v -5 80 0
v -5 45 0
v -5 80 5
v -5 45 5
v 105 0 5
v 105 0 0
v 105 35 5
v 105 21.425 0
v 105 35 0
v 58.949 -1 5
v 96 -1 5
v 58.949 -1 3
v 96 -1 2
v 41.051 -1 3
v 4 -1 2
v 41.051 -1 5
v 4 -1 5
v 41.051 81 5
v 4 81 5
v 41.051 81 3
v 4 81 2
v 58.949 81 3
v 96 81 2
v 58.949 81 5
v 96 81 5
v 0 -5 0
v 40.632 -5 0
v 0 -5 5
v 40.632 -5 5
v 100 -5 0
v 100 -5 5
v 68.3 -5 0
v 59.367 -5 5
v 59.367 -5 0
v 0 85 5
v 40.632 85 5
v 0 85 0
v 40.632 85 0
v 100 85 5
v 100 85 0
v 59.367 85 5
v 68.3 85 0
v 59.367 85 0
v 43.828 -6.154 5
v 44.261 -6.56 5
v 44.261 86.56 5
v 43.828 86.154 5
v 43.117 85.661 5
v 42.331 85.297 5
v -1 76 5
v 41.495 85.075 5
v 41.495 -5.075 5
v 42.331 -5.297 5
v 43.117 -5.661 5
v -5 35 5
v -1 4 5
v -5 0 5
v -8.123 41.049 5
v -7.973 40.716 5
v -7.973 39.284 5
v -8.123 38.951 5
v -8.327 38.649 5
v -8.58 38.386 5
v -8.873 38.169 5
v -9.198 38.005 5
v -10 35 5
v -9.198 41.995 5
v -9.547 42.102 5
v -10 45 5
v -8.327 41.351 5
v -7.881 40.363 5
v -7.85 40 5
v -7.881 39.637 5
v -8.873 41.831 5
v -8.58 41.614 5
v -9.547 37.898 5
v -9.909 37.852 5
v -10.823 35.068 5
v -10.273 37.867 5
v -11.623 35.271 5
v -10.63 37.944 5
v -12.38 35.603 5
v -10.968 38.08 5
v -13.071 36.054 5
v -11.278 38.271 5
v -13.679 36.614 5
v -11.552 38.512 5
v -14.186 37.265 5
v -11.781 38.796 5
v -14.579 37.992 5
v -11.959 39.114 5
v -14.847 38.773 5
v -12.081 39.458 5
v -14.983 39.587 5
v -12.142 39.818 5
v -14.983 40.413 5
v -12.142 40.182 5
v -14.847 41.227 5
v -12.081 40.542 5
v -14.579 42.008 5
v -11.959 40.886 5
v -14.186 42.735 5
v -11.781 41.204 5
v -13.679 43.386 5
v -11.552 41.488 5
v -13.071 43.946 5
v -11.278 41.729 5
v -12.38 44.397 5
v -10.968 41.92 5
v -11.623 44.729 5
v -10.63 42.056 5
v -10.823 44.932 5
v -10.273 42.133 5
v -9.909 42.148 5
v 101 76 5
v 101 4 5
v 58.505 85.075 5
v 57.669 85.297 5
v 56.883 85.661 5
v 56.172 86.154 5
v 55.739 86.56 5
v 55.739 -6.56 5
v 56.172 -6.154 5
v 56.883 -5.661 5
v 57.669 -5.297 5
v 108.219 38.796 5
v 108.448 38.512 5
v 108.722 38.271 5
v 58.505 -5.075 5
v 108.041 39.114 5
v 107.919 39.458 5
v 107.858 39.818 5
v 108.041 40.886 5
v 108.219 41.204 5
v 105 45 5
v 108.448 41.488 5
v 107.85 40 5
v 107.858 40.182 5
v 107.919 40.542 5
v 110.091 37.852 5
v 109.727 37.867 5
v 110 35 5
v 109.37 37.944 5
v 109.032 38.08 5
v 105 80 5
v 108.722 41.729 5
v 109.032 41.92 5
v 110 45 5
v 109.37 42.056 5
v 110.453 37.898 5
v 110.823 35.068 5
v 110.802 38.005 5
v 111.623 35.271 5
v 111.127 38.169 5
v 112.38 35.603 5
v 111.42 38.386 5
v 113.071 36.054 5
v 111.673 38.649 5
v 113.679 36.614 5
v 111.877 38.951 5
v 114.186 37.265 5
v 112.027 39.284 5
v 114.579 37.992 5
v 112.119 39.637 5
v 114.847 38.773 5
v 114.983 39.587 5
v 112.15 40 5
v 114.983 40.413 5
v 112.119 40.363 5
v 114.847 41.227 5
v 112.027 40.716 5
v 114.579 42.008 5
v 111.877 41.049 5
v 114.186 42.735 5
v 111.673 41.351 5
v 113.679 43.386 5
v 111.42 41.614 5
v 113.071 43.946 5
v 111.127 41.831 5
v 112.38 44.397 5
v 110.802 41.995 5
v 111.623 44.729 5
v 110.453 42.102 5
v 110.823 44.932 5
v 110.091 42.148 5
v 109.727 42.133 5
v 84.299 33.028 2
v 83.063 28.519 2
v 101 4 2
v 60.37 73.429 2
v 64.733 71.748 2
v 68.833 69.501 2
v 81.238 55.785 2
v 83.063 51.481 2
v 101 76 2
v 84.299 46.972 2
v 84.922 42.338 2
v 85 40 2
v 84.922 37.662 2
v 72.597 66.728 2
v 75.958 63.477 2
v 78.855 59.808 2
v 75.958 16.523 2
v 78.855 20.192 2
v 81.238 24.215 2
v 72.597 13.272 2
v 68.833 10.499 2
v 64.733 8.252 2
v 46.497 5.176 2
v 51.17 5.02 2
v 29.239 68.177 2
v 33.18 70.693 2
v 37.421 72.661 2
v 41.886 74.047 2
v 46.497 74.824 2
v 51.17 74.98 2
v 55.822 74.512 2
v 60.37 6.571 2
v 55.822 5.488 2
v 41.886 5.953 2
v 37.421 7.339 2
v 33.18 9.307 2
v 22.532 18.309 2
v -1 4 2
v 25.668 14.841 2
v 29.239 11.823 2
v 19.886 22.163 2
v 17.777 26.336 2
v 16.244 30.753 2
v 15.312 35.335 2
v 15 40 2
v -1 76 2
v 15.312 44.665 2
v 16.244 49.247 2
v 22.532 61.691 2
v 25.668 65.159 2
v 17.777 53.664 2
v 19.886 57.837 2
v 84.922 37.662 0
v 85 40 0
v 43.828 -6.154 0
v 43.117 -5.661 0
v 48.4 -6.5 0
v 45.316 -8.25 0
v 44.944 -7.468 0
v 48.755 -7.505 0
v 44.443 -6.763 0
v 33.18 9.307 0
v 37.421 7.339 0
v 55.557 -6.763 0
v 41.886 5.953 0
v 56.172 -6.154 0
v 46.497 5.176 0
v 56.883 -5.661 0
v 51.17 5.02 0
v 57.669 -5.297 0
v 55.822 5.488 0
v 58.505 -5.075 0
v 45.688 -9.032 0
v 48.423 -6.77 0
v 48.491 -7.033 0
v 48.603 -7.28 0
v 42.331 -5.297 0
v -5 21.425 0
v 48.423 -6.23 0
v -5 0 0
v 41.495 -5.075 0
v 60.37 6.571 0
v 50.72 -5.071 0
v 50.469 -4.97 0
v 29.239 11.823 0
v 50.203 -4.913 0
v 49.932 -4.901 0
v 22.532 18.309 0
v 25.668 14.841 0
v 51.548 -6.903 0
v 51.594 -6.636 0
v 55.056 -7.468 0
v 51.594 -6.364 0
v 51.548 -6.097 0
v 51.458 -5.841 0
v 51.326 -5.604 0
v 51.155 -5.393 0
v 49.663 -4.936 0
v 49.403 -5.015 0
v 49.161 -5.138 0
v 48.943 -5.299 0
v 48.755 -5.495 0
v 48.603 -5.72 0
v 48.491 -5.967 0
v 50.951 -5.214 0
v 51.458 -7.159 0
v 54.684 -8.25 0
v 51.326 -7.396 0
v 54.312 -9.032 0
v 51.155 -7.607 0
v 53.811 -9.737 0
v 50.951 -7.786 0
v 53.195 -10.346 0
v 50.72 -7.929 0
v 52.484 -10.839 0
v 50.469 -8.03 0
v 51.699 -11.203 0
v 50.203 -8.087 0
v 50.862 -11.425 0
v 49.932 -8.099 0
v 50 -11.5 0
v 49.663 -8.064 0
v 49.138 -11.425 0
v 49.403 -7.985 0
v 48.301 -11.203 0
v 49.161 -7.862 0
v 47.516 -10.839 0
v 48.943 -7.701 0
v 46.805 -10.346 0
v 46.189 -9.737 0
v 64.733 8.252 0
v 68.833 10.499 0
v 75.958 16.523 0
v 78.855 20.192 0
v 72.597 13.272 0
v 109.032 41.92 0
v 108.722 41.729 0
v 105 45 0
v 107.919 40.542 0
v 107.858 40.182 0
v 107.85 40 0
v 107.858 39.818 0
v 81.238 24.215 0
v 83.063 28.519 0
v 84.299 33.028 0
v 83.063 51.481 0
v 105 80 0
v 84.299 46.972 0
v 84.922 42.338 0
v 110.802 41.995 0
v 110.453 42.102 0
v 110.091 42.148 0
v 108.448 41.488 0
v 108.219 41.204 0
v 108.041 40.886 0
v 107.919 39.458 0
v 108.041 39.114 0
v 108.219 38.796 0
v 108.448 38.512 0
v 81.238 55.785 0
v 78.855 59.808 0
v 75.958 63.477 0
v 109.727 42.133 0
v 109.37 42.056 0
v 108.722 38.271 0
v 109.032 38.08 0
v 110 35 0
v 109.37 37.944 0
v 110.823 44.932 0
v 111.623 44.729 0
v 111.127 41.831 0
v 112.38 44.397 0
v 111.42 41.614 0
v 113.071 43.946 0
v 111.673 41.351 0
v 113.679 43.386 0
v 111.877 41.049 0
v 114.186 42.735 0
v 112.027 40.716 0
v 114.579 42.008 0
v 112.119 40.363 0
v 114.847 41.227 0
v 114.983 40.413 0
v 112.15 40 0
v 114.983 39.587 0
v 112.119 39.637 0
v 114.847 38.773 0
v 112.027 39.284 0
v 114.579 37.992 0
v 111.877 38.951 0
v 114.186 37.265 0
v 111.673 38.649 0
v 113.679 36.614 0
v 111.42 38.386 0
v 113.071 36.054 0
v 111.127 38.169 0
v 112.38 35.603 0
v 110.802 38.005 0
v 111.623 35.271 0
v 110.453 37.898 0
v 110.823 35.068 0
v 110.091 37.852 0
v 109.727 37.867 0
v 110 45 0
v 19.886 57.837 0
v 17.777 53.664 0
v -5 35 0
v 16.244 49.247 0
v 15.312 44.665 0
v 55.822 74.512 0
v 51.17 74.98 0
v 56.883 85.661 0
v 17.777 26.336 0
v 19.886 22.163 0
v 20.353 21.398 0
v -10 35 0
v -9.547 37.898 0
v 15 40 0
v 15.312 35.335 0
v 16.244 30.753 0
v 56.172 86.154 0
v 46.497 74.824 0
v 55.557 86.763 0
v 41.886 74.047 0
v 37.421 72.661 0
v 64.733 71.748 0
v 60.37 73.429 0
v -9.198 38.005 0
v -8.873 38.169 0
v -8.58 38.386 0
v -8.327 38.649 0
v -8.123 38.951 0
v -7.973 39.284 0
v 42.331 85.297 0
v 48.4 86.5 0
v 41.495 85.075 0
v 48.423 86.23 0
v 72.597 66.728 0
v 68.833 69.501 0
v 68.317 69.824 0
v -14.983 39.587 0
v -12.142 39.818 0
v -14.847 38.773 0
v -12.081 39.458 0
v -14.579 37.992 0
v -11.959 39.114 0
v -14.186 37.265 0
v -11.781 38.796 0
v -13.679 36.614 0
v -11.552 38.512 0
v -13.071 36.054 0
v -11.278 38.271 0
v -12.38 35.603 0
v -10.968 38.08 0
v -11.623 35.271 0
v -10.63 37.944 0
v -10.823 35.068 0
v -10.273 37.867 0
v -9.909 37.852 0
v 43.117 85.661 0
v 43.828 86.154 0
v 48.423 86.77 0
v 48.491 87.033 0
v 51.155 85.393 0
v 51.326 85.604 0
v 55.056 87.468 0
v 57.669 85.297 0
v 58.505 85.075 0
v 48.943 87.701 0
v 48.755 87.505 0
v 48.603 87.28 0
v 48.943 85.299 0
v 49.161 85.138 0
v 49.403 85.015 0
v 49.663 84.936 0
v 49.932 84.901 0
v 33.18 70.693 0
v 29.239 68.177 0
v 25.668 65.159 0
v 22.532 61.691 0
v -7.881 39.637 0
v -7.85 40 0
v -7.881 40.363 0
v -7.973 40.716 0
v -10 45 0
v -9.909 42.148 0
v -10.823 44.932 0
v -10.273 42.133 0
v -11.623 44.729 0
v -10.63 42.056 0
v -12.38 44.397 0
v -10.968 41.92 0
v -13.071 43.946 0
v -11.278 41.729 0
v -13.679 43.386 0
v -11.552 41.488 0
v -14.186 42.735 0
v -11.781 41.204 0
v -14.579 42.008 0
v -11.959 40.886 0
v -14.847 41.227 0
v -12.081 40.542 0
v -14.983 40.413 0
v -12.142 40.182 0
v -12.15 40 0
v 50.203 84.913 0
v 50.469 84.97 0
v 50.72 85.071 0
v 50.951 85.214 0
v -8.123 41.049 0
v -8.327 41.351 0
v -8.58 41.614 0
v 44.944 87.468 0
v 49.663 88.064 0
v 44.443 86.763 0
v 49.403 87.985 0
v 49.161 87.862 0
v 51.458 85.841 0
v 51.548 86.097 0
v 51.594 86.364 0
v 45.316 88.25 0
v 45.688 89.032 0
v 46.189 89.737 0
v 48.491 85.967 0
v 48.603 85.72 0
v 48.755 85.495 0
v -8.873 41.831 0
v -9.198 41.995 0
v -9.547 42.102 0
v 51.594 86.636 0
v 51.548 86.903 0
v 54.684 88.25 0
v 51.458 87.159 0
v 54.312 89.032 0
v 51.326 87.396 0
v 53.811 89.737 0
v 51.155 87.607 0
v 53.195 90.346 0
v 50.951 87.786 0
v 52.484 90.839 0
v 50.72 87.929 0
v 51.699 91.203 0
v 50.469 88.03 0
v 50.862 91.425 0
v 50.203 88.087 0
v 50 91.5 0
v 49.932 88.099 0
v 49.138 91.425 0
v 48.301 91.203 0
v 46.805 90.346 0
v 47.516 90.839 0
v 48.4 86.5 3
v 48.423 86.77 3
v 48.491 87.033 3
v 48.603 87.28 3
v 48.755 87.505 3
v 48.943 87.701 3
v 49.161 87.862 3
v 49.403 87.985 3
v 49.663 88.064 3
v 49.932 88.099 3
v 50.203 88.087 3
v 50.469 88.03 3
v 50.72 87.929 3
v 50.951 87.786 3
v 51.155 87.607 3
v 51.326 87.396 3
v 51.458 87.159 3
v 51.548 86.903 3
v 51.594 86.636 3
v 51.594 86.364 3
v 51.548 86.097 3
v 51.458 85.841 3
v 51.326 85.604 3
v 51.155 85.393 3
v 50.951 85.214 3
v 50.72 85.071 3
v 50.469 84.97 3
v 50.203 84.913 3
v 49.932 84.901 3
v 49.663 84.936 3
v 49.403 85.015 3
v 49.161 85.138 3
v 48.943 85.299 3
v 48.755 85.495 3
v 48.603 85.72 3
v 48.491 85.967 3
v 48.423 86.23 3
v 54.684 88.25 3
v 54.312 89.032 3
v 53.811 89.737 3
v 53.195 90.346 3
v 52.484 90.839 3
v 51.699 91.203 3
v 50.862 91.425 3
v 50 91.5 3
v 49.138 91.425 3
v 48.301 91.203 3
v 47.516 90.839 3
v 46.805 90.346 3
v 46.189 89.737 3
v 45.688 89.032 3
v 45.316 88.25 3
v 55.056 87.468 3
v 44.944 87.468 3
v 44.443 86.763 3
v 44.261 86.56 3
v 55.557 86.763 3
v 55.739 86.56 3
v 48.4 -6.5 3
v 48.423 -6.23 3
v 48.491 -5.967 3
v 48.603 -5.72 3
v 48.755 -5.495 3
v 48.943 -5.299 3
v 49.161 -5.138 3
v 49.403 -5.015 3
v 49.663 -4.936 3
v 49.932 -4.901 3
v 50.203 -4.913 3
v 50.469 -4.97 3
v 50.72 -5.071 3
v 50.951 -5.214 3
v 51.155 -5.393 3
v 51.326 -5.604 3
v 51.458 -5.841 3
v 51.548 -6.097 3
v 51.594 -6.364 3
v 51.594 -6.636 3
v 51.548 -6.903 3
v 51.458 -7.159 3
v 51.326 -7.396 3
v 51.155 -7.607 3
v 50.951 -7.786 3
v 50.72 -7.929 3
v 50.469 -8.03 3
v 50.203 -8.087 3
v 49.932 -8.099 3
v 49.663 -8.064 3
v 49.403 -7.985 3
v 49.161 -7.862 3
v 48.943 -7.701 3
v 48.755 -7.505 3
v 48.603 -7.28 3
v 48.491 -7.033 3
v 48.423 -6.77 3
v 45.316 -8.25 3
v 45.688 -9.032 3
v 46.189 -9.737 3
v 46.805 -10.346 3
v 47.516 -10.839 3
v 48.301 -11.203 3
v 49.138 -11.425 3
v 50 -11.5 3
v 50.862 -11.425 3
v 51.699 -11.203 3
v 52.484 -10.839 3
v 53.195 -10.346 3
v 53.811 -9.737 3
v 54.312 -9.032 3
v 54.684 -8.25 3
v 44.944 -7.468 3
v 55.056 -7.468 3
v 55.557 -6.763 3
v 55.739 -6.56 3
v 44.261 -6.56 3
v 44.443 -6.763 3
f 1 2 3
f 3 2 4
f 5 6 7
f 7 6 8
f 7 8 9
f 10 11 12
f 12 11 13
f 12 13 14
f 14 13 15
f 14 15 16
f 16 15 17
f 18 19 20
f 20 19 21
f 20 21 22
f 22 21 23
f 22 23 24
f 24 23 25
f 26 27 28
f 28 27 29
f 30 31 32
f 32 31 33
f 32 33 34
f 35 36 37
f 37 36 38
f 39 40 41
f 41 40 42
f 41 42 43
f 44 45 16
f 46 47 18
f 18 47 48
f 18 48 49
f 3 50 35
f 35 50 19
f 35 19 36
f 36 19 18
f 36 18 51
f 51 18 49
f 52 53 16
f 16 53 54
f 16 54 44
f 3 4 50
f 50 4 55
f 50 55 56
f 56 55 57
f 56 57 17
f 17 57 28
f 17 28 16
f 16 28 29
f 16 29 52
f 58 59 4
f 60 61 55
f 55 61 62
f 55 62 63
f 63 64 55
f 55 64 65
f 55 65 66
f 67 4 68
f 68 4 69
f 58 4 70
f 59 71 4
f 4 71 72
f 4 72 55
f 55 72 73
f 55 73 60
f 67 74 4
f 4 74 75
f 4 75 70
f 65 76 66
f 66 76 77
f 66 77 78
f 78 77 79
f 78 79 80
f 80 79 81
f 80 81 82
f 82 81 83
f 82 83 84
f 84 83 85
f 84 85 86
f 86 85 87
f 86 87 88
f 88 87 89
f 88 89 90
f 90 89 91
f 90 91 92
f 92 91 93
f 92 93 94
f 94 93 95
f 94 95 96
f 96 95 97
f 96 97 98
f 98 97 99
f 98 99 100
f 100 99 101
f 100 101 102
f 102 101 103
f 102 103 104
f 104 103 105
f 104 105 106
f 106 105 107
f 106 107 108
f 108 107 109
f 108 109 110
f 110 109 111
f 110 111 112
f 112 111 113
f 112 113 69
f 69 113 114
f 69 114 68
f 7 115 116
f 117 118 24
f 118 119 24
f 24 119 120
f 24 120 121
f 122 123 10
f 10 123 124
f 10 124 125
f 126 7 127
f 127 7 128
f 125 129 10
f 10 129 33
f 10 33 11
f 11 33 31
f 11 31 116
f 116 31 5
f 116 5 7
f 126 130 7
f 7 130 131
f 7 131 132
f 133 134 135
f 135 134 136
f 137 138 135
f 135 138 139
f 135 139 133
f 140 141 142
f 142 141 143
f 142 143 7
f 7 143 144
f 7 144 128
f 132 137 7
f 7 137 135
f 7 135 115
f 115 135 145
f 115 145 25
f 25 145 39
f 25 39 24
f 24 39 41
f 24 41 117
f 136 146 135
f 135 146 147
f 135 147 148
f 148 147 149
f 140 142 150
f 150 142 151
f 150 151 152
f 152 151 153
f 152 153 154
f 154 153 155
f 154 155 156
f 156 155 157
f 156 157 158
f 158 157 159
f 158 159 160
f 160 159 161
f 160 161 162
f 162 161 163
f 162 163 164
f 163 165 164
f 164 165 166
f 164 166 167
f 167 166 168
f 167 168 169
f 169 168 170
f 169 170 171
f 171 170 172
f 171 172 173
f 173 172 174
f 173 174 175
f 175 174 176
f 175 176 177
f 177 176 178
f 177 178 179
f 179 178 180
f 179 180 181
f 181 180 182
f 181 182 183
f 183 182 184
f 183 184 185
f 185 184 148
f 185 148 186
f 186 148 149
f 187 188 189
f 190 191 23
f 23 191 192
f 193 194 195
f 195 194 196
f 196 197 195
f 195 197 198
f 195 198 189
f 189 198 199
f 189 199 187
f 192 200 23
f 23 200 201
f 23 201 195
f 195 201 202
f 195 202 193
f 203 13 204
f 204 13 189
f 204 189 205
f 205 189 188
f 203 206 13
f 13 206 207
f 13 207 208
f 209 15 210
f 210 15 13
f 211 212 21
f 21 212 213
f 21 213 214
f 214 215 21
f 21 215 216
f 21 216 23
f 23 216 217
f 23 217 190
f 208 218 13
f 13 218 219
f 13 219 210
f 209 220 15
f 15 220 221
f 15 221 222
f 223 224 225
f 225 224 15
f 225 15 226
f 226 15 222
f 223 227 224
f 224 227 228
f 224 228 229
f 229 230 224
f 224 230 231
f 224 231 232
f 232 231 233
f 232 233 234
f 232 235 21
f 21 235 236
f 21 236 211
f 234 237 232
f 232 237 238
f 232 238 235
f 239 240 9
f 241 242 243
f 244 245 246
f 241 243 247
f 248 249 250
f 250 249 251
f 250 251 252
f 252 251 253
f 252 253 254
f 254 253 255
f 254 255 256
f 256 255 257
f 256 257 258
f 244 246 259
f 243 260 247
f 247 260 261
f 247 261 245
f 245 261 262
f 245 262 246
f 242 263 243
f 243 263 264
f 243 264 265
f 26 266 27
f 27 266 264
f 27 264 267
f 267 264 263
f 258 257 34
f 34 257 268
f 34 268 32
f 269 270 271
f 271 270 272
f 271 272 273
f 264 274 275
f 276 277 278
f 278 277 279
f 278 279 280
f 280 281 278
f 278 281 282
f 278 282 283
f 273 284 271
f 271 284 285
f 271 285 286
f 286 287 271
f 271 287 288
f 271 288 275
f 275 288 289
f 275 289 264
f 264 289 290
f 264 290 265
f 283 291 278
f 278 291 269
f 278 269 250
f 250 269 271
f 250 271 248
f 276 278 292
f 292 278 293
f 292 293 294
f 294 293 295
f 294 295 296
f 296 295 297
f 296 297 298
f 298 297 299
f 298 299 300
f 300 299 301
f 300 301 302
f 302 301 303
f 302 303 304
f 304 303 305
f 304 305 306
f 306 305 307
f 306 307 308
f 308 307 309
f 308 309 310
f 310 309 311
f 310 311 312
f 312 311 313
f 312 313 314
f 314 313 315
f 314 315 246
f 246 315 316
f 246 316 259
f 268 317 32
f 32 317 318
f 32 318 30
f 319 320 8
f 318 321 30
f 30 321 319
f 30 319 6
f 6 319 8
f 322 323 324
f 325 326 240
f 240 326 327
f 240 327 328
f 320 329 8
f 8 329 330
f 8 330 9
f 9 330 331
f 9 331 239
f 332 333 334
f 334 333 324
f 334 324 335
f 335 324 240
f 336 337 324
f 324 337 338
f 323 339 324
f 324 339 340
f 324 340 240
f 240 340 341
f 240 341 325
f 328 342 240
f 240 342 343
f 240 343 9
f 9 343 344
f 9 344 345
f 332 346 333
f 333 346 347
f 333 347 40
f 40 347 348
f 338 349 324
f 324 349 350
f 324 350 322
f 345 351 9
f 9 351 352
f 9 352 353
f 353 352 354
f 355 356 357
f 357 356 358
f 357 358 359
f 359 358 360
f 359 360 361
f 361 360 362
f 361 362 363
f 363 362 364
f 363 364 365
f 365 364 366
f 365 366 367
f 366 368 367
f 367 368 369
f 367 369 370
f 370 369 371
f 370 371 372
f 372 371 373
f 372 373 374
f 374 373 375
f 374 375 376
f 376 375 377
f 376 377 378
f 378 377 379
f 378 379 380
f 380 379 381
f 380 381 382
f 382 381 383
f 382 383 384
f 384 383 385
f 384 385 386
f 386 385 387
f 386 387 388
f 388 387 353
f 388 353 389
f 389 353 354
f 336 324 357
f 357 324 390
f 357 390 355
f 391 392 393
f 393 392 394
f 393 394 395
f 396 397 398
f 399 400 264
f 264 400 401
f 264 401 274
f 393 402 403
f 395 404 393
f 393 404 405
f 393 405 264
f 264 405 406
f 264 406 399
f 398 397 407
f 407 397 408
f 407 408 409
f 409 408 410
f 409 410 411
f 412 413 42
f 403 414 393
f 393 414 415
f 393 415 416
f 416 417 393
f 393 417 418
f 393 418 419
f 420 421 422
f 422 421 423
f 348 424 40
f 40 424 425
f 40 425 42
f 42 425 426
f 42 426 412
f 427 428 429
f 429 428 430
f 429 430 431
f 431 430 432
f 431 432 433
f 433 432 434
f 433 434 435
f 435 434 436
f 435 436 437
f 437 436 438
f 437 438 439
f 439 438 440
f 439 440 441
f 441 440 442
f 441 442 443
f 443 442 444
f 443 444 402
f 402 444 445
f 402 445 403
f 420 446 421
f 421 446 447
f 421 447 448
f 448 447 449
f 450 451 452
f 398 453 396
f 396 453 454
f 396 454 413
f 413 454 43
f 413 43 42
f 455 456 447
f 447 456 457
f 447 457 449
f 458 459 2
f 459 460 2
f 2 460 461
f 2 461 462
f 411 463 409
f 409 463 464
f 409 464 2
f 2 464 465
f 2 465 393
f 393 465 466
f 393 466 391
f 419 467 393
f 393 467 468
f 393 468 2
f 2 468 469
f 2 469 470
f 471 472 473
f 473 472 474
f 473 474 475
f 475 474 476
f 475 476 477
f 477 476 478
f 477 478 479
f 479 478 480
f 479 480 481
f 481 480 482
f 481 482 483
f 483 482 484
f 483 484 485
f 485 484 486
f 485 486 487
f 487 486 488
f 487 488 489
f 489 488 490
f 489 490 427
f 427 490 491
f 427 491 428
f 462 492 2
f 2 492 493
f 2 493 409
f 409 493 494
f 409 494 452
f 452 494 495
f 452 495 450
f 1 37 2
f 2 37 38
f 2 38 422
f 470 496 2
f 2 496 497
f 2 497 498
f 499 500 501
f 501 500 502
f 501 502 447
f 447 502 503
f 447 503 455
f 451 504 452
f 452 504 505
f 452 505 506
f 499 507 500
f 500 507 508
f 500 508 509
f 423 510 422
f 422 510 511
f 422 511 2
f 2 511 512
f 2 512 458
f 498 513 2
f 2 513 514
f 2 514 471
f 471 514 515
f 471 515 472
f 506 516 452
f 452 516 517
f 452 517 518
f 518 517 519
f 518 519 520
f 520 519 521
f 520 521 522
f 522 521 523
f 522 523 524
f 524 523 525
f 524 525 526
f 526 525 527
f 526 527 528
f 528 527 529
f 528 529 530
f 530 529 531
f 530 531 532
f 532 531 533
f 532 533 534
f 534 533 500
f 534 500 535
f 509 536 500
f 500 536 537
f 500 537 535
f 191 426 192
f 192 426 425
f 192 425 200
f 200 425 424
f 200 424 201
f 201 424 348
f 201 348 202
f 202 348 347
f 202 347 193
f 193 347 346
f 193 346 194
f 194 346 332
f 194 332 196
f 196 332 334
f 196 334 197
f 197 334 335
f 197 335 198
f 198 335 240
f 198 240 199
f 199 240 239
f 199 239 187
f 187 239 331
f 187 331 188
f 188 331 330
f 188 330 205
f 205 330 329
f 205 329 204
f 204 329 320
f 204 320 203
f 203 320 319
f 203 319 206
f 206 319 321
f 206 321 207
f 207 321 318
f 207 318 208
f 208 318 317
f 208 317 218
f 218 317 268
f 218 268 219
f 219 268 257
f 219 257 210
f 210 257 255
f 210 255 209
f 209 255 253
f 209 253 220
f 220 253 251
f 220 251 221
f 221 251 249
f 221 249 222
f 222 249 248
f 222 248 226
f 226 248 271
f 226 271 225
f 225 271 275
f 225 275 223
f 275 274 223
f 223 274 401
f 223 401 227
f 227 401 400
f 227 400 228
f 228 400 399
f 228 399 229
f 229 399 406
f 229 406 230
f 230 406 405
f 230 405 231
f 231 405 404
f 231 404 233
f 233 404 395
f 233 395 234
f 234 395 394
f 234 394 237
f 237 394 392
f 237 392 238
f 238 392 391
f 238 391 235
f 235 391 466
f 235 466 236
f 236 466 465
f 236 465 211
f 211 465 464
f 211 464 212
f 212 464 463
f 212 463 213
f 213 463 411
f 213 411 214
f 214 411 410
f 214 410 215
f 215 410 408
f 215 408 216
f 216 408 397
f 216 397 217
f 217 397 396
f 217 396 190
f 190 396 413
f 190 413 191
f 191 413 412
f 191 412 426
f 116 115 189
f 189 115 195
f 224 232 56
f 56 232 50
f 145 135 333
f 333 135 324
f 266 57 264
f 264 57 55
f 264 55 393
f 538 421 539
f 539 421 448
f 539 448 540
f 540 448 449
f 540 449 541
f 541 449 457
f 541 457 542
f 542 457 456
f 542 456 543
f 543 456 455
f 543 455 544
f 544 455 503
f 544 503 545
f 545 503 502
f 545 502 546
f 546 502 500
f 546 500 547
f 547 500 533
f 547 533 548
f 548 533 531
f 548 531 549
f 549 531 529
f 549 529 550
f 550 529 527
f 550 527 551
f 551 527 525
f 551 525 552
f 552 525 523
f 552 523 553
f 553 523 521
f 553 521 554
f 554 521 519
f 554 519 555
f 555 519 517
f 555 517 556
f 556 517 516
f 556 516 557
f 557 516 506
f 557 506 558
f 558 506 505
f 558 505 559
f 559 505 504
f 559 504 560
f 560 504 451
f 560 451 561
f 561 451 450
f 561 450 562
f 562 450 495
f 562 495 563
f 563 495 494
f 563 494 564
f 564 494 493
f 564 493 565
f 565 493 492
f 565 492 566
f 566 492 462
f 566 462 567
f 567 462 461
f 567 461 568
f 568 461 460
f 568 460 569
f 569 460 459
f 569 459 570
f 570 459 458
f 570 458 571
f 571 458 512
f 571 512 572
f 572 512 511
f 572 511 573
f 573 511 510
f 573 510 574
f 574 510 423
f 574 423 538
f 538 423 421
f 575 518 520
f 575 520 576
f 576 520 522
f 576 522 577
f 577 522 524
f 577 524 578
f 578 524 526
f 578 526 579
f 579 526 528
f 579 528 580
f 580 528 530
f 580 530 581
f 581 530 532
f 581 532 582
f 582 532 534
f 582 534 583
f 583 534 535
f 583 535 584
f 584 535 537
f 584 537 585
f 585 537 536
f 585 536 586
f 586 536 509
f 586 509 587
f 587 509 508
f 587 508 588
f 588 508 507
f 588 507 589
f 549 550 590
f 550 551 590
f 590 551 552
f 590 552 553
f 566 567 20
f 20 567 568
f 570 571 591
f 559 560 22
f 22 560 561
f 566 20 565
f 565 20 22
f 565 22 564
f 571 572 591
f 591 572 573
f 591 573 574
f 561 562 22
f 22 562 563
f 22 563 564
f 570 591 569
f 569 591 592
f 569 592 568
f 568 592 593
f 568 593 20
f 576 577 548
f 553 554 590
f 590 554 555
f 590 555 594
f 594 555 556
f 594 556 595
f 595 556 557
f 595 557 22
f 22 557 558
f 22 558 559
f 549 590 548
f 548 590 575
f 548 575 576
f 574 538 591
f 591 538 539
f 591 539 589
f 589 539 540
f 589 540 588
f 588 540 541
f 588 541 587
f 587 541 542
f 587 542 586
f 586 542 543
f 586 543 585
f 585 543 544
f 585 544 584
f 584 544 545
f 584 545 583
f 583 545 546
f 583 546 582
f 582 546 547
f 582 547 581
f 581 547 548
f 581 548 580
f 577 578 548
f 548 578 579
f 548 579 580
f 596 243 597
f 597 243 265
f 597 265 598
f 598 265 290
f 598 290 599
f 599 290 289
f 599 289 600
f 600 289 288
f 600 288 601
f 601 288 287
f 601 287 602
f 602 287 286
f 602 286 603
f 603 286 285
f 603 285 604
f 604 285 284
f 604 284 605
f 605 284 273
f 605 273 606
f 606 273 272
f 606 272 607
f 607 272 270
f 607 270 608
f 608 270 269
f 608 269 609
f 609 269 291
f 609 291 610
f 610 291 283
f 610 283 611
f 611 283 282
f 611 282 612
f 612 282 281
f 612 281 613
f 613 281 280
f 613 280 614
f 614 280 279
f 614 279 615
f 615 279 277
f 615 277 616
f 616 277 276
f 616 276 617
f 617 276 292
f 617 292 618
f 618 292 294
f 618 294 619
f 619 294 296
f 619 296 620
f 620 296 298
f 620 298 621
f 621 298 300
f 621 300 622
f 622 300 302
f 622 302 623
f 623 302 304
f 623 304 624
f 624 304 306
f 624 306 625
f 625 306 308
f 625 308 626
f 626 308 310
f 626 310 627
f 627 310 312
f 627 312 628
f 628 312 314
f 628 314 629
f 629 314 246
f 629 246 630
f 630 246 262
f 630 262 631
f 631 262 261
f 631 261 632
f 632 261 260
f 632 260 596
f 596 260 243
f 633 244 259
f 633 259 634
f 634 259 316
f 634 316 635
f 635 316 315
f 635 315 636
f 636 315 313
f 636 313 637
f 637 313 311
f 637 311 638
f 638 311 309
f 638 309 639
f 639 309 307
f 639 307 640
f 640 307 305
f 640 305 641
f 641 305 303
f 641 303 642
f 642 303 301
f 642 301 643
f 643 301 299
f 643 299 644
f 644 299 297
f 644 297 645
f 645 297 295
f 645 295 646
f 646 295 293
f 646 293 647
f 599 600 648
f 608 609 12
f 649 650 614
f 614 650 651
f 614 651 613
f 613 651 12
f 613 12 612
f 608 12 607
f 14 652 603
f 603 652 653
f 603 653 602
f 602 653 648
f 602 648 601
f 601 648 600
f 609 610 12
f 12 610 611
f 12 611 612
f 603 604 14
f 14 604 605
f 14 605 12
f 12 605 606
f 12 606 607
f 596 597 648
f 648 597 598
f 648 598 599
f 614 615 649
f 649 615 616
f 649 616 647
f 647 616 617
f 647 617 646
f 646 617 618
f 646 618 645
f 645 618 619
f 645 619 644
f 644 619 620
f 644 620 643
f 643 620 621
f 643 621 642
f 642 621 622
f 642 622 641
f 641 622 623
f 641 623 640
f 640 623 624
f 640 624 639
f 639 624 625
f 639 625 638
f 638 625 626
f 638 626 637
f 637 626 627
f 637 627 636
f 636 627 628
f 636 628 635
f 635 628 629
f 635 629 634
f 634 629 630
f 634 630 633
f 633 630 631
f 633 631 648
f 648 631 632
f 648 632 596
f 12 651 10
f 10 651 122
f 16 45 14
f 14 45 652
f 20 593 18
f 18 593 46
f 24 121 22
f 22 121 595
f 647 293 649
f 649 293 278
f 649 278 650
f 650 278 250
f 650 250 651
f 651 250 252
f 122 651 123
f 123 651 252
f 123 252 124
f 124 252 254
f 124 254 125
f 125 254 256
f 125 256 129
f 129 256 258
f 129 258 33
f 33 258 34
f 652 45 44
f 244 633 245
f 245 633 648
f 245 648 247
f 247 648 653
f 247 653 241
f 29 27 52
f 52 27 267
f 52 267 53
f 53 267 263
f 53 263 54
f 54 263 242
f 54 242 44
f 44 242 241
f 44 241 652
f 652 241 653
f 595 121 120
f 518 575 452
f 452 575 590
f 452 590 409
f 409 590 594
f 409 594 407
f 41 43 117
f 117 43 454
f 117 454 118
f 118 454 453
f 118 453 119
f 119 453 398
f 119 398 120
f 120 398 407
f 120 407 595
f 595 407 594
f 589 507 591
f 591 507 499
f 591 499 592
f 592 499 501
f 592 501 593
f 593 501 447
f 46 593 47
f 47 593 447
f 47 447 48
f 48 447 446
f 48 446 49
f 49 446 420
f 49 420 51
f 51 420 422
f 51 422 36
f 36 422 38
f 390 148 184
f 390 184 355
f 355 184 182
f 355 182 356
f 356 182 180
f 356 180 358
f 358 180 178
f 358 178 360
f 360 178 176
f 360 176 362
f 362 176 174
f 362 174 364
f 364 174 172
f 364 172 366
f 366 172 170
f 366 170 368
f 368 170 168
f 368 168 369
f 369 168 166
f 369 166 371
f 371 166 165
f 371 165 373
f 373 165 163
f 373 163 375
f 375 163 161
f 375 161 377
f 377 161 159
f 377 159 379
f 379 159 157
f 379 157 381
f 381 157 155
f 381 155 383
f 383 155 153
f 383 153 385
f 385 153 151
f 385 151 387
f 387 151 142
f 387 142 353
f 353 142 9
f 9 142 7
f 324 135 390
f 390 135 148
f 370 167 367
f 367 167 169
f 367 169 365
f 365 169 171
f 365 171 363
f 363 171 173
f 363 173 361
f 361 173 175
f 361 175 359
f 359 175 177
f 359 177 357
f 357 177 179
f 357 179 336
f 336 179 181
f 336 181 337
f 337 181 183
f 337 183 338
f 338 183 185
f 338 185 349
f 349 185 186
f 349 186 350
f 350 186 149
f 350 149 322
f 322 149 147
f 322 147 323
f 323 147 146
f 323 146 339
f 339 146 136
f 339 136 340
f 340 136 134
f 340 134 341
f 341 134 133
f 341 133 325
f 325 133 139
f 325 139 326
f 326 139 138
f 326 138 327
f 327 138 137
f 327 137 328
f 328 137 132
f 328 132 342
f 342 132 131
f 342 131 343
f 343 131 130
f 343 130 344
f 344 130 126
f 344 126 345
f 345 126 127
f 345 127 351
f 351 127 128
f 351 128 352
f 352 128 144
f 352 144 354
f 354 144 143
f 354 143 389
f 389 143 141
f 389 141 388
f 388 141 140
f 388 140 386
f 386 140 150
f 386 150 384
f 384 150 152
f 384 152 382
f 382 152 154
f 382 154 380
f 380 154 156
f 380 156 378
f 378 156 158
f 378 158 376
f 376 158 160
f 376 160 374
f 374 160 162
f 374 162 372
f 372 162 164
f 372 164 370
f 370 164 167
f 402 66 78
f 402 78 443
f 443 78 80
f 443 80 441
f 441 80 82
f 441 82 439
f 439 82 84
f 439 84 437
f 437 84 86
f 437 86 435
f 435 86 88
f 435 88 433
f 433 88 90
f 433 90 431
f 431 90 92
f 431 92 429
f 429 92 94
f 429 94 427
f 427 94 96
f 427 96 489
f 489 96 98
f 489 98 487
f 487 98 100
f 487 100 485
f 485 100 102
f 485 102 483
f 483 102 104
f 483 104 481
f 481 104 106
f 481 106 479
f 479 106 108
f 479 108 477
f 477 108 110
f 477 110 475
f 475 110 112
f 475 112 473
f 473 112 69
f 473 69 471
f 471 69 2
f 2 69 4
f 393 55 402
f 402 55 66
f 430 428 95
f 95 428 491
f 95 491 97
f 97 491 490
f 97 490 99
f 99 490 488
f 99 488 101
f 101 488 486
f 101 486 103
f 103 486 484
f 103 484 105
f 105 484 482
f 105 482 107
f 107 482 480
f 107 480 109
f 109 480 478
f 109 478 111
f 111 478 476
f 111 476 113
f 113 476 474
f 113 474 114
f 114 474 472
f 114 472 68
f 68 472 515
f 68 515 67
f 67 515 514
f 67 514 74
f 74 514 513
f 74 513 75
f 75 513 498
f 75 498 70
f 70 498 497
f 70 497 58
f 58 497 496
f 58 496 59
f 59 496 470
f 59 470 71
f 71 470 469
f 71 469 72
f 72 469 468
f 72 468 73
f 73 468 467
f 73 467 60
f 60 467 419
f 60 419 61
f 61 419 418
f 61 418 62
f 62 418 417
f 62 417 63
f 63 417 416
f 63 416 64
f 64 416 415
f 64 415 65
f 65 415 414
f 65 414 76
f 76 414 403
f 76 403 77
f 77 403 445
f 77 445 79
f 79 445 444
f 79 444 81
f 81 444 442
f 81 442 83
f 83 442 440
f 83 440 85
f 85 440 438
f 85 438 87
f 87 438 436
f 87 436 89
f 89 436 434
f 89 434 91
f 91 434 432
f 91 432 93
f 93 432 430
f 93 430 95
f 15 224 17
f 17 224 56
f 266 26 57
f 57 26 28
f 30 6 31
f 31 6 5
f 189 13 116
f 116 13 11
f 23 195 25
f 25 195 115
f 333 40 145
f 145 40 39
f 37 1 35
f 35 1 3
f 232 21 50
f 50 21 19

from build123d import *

# Parameters (mm, degrees)
SKETCH_1_W          = 102
SKETCH_1_H          = 82
SKETCH_1_R          = 35
EXTRUDE_1_DEPTH     = 2
SKETCH_2_W          = 110
SKETCH_2_H          = 90
SKETCH_2_W_2        = 102
SKETCH_2_H_2        = 82
EXTRUDE_2_DEPTH     = 5
EXTRUDE_3_DEPTH     = 3
CUT_EXTRUDE_1_DEPTH = 140.306317158
FILLET_1_R          = 5
SKETCH_5_R          = 2.15
EXTRUDE_4_DEPTH     = 5
CHAMFER_1_SIZE      = 5
SKETCH_6_R          = 1.6
CUT_EXTRUDE_2_DEPTH = 147.990645961


with BuildPart() as part:
    # 草图1 → 凸台-拉伸1 (new body)
    with BuildSketch(Plane.XY):
        with Locations((50, 40)):
            Rectangle(SKETCH_1_W, SKETCH_1_H)
        with Locations((50, 40)):
            Circle(SKETCH_1_R, mode=Mode.SUBTRACT)
    extrude(amount=EXTRUDE_1_DEPTH)

    # 草图2 → 凸台-拉伸2 (add)
    with BuildSketch(Plane(origin=(0, 0, 0), x_dir=(-1, 0, 0), z_dir=(0, 0, -1))):
        with Locations((-50, 40)):
            Rectangle(SKETCH_2_W, SKETCH_2_H)
        with Locations((-50, 40)):
            Rectangle(SKETCH_2_W_2, SKETCH_2_H_2, mode=Mode.SUBTRACT)
    extrude(amount=-EXTRUDE_2_DEPTH)

    # 草图3 → 凸台-拉伸3 (add)
    with BuildSketch(Plane(origin=(0, 0, 0), x_dir=(-1, 0, 0), z_dir=(0, 0, -1))):
        with BuildLine():
            Line((-55, 86.5), (-55, 85))
            Line((-55, 85), (-50.556776436, 85))
            ThreePointArc((-50.556776436, 85), (-50, 88.1), (-49.443223564, 85))
            Line((-49.443223564, 85), (-45, 85))
            Line((-45, 85), (-45, 86.5))
            ThreePointArc((-45, 86.5), (-50, 91.5), (-55, 86.5))
        make_face()
        with BuildLine():
            Line((-55, -6.5), (-55, -5))
            Line((-55, -5), (-50.556776436, -5))
            ThreePointArc((-50.556776436, -5), (-50, -8.1), (-49.443223564, -5))
            Line((-49.443223564, -5), (-45, -5))
            Line((-45, -5), (-45, -6.5))
            ThreePointArc((-45, -6.5), (-50, -11.5), (-55, -6.5))
        make_face()
    extrude(amount=-EXTRUDE_3_DEPTH)

    # 草图4 → 切除-拉伸1 (cut, through all)
    with BuildSketch(Plane.XY.offset(3)):
        with BuildLine():
            Line((45.669872981, 89), (41.051070828, 81))
            Line((41.051070828, 81), (58.948929172, 81))
            Line((58.948929172, 81), (54.330127019, 89))
            ThreePointArc((54.330127019, 89), (50, 91.5), (45.669872981, 89))
        make_face()
        with BuildLine():
            Line((58.948929172, -1), (54.330127019, -9))
            ThreePointArc((54.330127019, -9), (50, -11.5), (45.669872981, -9))
            Line((45.669872981, -9), (41.051070828, -1))
            Line((41.051070828, -1), (58.948929172, -1))
        make_face()
    extrude(amount=CUT_EXTRUDE_1_DEPTH, mode=Mode.SUBTRACT)

    # 圆角1
    # the kernel refuses this fillet: 5 mm, written as the material it adds along each edge
    with BuildSketch(Plane(origin=(55, -5, 0), x_dir=(-0.09685070087569839, -0.995298920797107, 0), z_dir=(0, 0, 1))) as fillet_1_piece_1_section:
        with BuildLine():
            CenterArc((4.553499459, 4.831218553), FILLET_1_R, 185.557848431, 69.512684885)
            Line((-0.422995145, 4.346965048), (-0.920644606, 4.298539698))
            Line((-0.920644606, 4.298539698), (-0.49764946, -0.04842535))
            Line((-0.49764946, -0.04842535), (0.04842535, -0.49764946))
            ThreePointArc((0.04842535, -0.49764946), (1.541373732, -0.352373409), (3.136535793, -0.483121855))
            Line((3.136535793, -0.483121855), (3.265350672, 0))
        make_face()
    fillet_1_piece_1 = extrude(amount=3, mode=Mode.PRIVATE)
    fillet_1_piece_1 = split(fillet_1_piece_1, bisect_by=Plane(origin=(55.914654271, -6.255518293, 1.5), z_dir=(-0.8660254037844367, 0.5000000000000034, 0)), keep=Keep.TOP, mode=Mode.PRIVATE)
    add(fillet_1_piece_1)
    with BuildSketch(Plane(origin=(55, -5, 0), x_dir=(-0.09685070087569839, -0.995298920797107, 0), z_dir=(0, 0, 1))) as fillet_1_piece_2_section:
        with BuildLine():
            CenterArc((4.553499459, 4.831218553), FILLET_1_R, 185.557848431, 69.512684885)
            Line((-0.422995145, 4.346965048), (-0.920644606, 4.298539698))
            Line((-0.920644606, 4.298539698), (-0.49764946, -0.04842535))
            Line((-0.49764946, -0.04842535), (0.04842535, -0.49764946))
            ThreePointArc((0.04842535, -0.49764946), (1.541373732, -0.352373409), (3.136535793, -0.483121855))
            Line((3.136535793, -0.483121855), (3.265350672, 0))
        make_face()
    fillet_1_piece_2 = extrude(amount=3, mode=Mode.PRIVATE)
    fillet_1_piece_2 = split(fillet_1_piece_2, bisect_by=Plane(origin=(56.857806143, -4.621931332, 1.5), z_dir=(0.8660254037844367, -0.5000000000000034, 0)), keep=Keep.TOP, mode=Mode.PRIVATE)
    add(fillet_1_piece_2)
    with BuildSketch(Plane(origin=(55, -5, 0), x_dir=(-0.09685070087569839, -0.995298920797107, 0), z_dir=(0, 0, 1))) as fillet_1_piece_3_section:
        with BuildLine():
            CenterArc((4.553499459, 4.831218553), FILLET_1_R, 185.557848431, 69.512684885)
            Line((-0.422995145, 4.346965048), (-0.920644606, 4.298539698))
            Line((-0.920644606, 4.298539698), (-0.49764946, -0.04842535))
            Line((-0.49764946, -0.04842535), (0.04842535, -0.49764946))
            ThreePointArc((0.04842535, -0.49764946), (1.541373732, -0.352373409), (3.136535793, -0.483121855))
            Line((3.136535793, -0.483121855), (3.265350672, 0))
        make_face()
    fillet_1_piece_3 = extrude(amount=13.918742494, mode=Mode.PRIVATE)
    fillet_1_piece_3 = split(fillet_1_piece_3, bisect_by=Plane(origin=(57.593647947, -5.046769796, 5), z_dir=(0, 0, -1)), keep=Keep.TOP, mode=Mode.PRIVATE)
    fillet_1_piece_3 = split(fillet_1_piece_3, bisect_by=Plane(origin=(56.857806143, -4.621931332, 4), z_dir=(0.8660254037844367, -0.5000000000000034, 0)), keep=Keep.TOP, mode=Mode.PRIVATE)
    fillet_1_piece_3 = split(fillet_1_piece_3, bisect_by=Plane(origin=(57.593647947, -5.046769796, 3), z_dir=(0, 0, 1)), keep=Keep.TOP, mode=Mode.PRIVATE)
    add(fillet_1_piece_3)
    with BuildSketch(Plane(origin=(45, -5, 0), x_dir=(0.09685070087569624, -0.9952989207971072, 0), z_dir=(0, 0, 1))) as fillet_1_piece_4_section:
        with BuildLine():
            CenterArc((4.553499459, -4.831218553), FILLET_1_R, 104.929466684, 69.512684885)
            Line((-0.422995145, -4.346965048), (-0.920644606, -4.298539698))
            Line((-0.920644606, -4.298539698), (-0.49764946, 0.04842535))
            Line((-0.49764946, 0.04842535), (0.04842535, 0.49764946))
            ThreePointArc((0.04842535, 0.49764946), (1.541373732, 0.352373409), (3.136535793, 0.483121855))
            Line((3.136535793, 0.483121855), (3.265350672, 0))
        make_face()
    fillet_1_piece_4 = extrude(amount=3, mode=Mode.PRIVATE)
    fillet_1_piece_4 = split(fillet_1_piece_4, bisect_by=Plane(origin=(44.085345729, -6.255518293, 1.5), z_dir=(0.8660254037844364, 0.5000000000000041, 0)), keep=Keep.TOP, mode=Mode.PRIVATE)
    add(fillet_1_piece_4)
    with BuildSketch(Plane(origin=(45, -5, 0), x_dir=(0.09685070087569624, -0.9952989207971072, 0), z_dir=(0, 0, 1))) as fillet_1_piece_5_section:
        with BuildLine():
            CenterArc((4.553499459, -4.831218553), FILLET_1_R, 104.929466684, 69.512684885)
            Line((-0.422995145, -4.346965048), (-0.920644606, -4.298539698))
            Line((-0.920644606, -4.298539698), (-0.49764946, 0.04842535))
            Line((-0.49764946, 0.04842535), (0.04842535, 0.49764946))
            ThreePointArc((0.04842535, 0.49764946), (1.541373732, 0.352373409), (3.136535793, 0.483121855))
            Line((3.136535793, 0.483121855), (3.265350672, 0))
        make_face()
    fillet_1_piece_5 = extrude(amount=3, mode=Mode.PRIVATE)
    fillet_1_piece_5 = split(fillet_1_piece_5, bisect_by=Plane(origin=(43.142193857, -4.621931332, 1.5), z_dir=(-0.8660254037844364, -0.5000000000000041, 0)), keep=Keep.TOP, mode=Mode.PRIVATE)
    add(fillet_1_piece_5)
    with BuildSketch(Plane(origin=(45, -5, 0), x_dir=(0.09685070087569624, -0.9952989207971072, 0), z_dir=(0, 0, 1))) as fillet_1_piece_6_section:
        with BuildLine():
            CenterArc((4.553499459, -4.831218553), FILLET_1_R, 104.929466684, 69.512684885)
            Line((-0.422995145, -4.346965048), (-0.920644606, -4.298539698))
            Line((-0.920644606, -4.298539698), (-0.49764946, 0.04842535))
            Line((-0.49764946, 0.04842535), (0.04842535, 0.49764946))
            ThreePointArc((0.04842535, 0.49764946), (1.541373732, 0.352373409), (3.136535793, 0.483121855))
            Line((3.136535793, 0.483121855), (3.265350672, 0))
        make_face()
    fillet_1_piece_6 = extrude(amount=13.918742494, mode=Mode.PRIVATE)
    fillet_1_piece_6 = split(fillet_1_piece_6, bisect_by=Plane(origin=(42.406352053, -5.046769796, 5), z_dir=(0, 0, -1)), keep=Keep.TOP, mode=Mode.PRIVATE)
    fillet_1_piece_6 = split(fillet_1_piece_6, bisect_by=Plane(origin=(42.406352053, -5.046769796, 3), z_dir=(0, 0, 1)), keep=Keep.TOP, mode=Mode.PRIVATE)
    fillet_1_piece_6 = split(fillet_1_piece_6, bisect_by=Plane(origin=(43.142193857, -4.621931332, 4), z_dir=(-0.8660254037844364, -0.5000000000000041, 0)), keep=Keep.TOP, mode=Mode.PRIVATE)
    add(fillet_1_piece_6)
    with BuildSketch(Plane(origin=(55, 85, 0), x_dir=(-0.0968507008756942, 0.9952989207971075, 0), z_dir=(0, 0, 1))) as fillet_1_piece_7_section:
        with BuildLine():
            CenterArc((4.553499459, -4.831218553), FILLET_1_R, 104.929466684, 69.512684885)
            Line((-0.422995145, -4.346965048), (-0.920644606, -4.298539698))
            Line((-0.920644606, -4.298539698), (-0.49764946, 0.04842535))
            Line((-0.49764946, 0.04842535), (0.04842535, 0.49764946))
            ThreePointArc((0.04842535, 0.49764946), (1.541373732, 0.352373409), (3.136535793, 0.483121855))
            Line((3.136535793, 0.483121855), (3.265350672, 0))
        make_face()
    fillet_1_piece_7 = extrude(amount=3, mode=Mode.PRIVATE)
    fillet_1_piece_7 = split(fillet_1_piece_7, bisect_by=Plane(origin=(55.914654271, 86.255518293, 1.5), z_dir=(-0.8660254037844369, -0.5000000000000031, 0)), keep=Keep.TOP, mode=Mode.PRIVATE)
    add(fillet_1_piece_7)
    with BuildSketch(Plane(origin=(55, 85, 0), x_dir=(-0.0968507008756942, 0.9952989207971075, 0), z_dir=(0, 0, 1))) as fillet_1_piece_8_section:
        with BuildLine():
            CenterArc((4.553499459, -4.831218553), FILLET_1_R, 104.929466684, 69.512684885)
            Line((-0.422995145, -4.346965048), (-0.920644606, -4.298539698))
            Line((-0.920644606, -4.298539698), (-0.49764946, 0.04842535))
            Line((-0.49764946, 0.04842535), (0.04842535, 0.49764946))
            ThreePointArc((0.04842535, 0.49764946), (1.541373732, 0.352373409), (3.136535793, 0.483121855))
            Line((3.136535793, 0.483121855), (3.265350672, 0))
        make_face()
    fillet_1_piece_8 = extrude(amount=3, mode=Mode.PRIVATE)
    fillet_1_piece_8 = split(fillet_1_piece_8, bisect_by=Plane(origin=(56.857806143, 84.621931332, 1.5), z_dir=(0.8660254037844369, 0.5000000000000031, 0)), keep=Keep.TOP, mode=Mode.PRIVATE)
    add(fillet_1_piece_8)
    with BuildSketch(Plane(origin=(55, 85, 0), x_dir=(-0.0968507008756942, 0.9952989207971075, 0), z_dir=(0, 0, 1))) as fillet_1_piece_9_section:
        with BuildLine():
            CenterArc((4.553499459, -4.831218553), FILLET_1_R, 104.929466684, 69.512684885)
            Line((-0.422995145, -4.346965048), (-0.920644606, -4.298539698))
            Line((-0.920644606, -4.298539698), (-0.49764946, 0.04842535))
            Line((-0.49764946, 0.04842535), (0.04842535, 0.49764946))
            ThreePointArc((0.04842535, 0.49764946), (1.541373732, 0.352373409), (3.136535793, 0.483121855))
            Line((3.136535793, 0.483121855), (3.265350672, 0))
        make_face()
    fillet_1_piece_9 = extrude(amount=13.918742494, mode=Mode.PRIVATE)
    fillet_1_piece_9 = split(fillet_1_piece_9, bisect_by=Plane(origin=(57.593647947, 85.046769796, 3), z_dir=(0, 0, 1)), keep=Keep.TOP, mode=Mode.PRIVATE)
    fillet_1_piece_9 = split(fillet_1_piece_9, bisect_by=Plane(origin=(56.857806143, 84.621931332, 4), z_dir=(0.8660254037844369, 0.5000000000000031, 0)), keep=Keep.TOP, mode=Mode.PRIVATE)
    fillet_1_piece_9 = split(fillet_1_piece_9, bisect_by=Plane(origin=(57.593647947, 85.046769796, 5), z_dir=(0, 0, -1)), keep=Keep.TOP, mode=Mode.PRIVATE)
    add(fillet_1_piece_9)
    with BuildSketch(Plane(origin=(45, 85, 0), x_dir=(-1, 0, 0), z_dir=(0, 0, 1))) as fillet_1_piece_10_section:
        with BuildLine():
            CenterArc((4.367496998, -5), FILLET_1_R, 90, 69.512684885)
            Line((-0.316251501, -3.25), (-0.784626351, -3.075))
            ThreePointArc((-0.784626351, -3.075), (-0.5, -1.5), (-0.5, 0))
            Line((-0.5, 0), (0, 0.5))
            Line((0, 0.5), (4.367496998, 0.5))
            Line((4.367496998, 0.5), (4.367496998, 0))
        make_face()
    fillet_1_piece_10 = extrude(amount=3, mode=Mode.PRIVATE)
    fillet_1_piece_10 = split(fillet_1_piece_10, bisect_by=Plane(origin=(43.142193857, 84.621931332, 1.5), z_dir=(-0.8660254037844366, 0.5000000000000037, 0)), keep=Keep.TOP, mode=Mode.PRIVATE)
    add(fillet_1_piece_10)
    with BuildSketch(Plane(origin=(45, 85, 0), x_dir=(-1, 0, 0), z_dir=(0, 0, 1))) as fillet_1_piece_11_section:
        with BuildLine():
            CenterArc((4.367496998, -5), FILLET_1_R, 90, 69.512684885)
            Line((-0.316251501, -3.25), (-0.784626351, -3.075))
            ThreePointArc((-0.784626351, -3.075), (-0.5, -1.5), (-0.5, 0))
            Line((-0.5, 0), (0, 0.5))
            Line((0, 0.5), (4.367496998, 0.5))
            Line((4.367496998, 0.5), (4.367496998, 0))
        make_face()
    fillet_1_piece_11 = extrude(amount=3, mode=Mode.PRIVATE)
    fillet_1_piece_11 = split(fillet_1_piece_11, bisect_by=Plane(origin=(44.085345729, 86.255518293, 1.5), z_dir=(0.8660254037844366, -0.5000000000000037, 0)), keep=Keep.TOP, mode=Mode.PRIVATE)
    add(fillet_1_piece_11)
    with BuildSketch(Plane(origin=(45, 85, 0), x_dir=(-1, 0, 0), z_dir=(0, 0, 1))) as fillet_1_piece_12_section:
        with BuildLine():
            CenterArc((4.367496998, -5), FILLET_1_R, 90, 69.512684885)
            Line((-0.316251501, -3.25), (-0.784626351, -3.075))
            ThreePointArc((-0.784626351, -3.075), (-0.5, -1.5), (-0.5, 0))
            Line((-0.5, 0), (0, 0.5))
            Line((0, 0.5), (4.367496998, 0.5))
            Line((4.367496998, 0.5), (4.367496998, 0))
        make_face()
    fillet_1_piece_12 = extrude(amount=13.918742494, mode=Mode.PRIVATE)
    fillet_1_piece_12 = split(fillet_1_piece_12, bisect_by=Plane(origin=(42.406352053, 85.046769796, 5), z_dir=(0, 0, -1)), keep=Keep.TOP, mode=Mode.PRIVATE)
    fillet_1_piece_12 = split(fillet_1_piece_12, bisect_by=Plane(origin=(42.406352053, 85.046769796, 3), z_dir=(0, 0, 1)), keep=Keep.TOP, mode=Mode.PRIVATE)
    fillet_1_piece_12 = split(fillet_1_piece_12, bisect_by=Plane(origin=(43.142193857, 84.621931332, 4), z_dir=(-0.8660254037844366, 0.5000000000000037, 0)), keep=Keep.TOP, mode=Mode.PRIVATE)
    add(fillet_1_piece_12)

    # 草图5 → 凸台-拉伸4 (add)
    # profile 1 of 2: a face of its own
    with BuildSketch(Plane.XY.offset(5)):
        with BuildLine():
            Line((-10, 45), (-5, 45))
            Line((-5, 45), (-5, 35))
            Line((-5, 35), (-10, 35))
            ThreePointArc((-10, 35), (-15, 40), (-10, 45))
        make_face()
        with Locations((-10, 40)):
            Circle(SKETCH_5_R, mode=Mode.SUBTRACT)
    # profile 2 of 2: a face of its own
    with BuildSketch(Plane.XY.offset(5)):
        with BuildLine():
            Line((105, 35), (110, 35))
            ThreePointArc((110, 35), (115, 40), (110, 45))
            Line((110, 45), (105, 45))
            Line((105, 45), (105, 35))
        make_face()
        with Locations(Location((110, 40, 0), (0, 0, 180))):
            Circle(SKETCH_5_R, mode=Mode.SUBTRACT)
    extrude(amount=-EXTRUDE_4_DEPTH)

    # 倒角1
    chamfer_1_edges = [part.edges().sort_by_distance(p)[0] for p in [
        (101, -1, 3.5),
        (-1, 81, 3.5),
        (101, 81, 3.5),
        (-1, -1, 3.5),
        (-5, -5, 2.5),
        (105, -5, 2.5),
        (105, 85, 2.5),
        (-5, 85, 2.5),
    ]]
    chamfer(chamfer_1_edges, length=CHAMFER_1_SIZE)

    # 草图6 → 切除-拉伸2 (cut, through all)
    with BuildSketch(Plane.XY.offset(3)):
        with Locations(Location((50, 86.5, 0), (0, 0, 180))):
            Circle(SKETCH_6_R)
        with Locations(Location((50, -6.5, 0), (0, 0, 180))):
            Circle(SKETCH_6_R)
    extrude(amount=-CUT_EXTRUDE_2_DEPTH, mode=Mode.SUBTRACT)


solid = part.part
